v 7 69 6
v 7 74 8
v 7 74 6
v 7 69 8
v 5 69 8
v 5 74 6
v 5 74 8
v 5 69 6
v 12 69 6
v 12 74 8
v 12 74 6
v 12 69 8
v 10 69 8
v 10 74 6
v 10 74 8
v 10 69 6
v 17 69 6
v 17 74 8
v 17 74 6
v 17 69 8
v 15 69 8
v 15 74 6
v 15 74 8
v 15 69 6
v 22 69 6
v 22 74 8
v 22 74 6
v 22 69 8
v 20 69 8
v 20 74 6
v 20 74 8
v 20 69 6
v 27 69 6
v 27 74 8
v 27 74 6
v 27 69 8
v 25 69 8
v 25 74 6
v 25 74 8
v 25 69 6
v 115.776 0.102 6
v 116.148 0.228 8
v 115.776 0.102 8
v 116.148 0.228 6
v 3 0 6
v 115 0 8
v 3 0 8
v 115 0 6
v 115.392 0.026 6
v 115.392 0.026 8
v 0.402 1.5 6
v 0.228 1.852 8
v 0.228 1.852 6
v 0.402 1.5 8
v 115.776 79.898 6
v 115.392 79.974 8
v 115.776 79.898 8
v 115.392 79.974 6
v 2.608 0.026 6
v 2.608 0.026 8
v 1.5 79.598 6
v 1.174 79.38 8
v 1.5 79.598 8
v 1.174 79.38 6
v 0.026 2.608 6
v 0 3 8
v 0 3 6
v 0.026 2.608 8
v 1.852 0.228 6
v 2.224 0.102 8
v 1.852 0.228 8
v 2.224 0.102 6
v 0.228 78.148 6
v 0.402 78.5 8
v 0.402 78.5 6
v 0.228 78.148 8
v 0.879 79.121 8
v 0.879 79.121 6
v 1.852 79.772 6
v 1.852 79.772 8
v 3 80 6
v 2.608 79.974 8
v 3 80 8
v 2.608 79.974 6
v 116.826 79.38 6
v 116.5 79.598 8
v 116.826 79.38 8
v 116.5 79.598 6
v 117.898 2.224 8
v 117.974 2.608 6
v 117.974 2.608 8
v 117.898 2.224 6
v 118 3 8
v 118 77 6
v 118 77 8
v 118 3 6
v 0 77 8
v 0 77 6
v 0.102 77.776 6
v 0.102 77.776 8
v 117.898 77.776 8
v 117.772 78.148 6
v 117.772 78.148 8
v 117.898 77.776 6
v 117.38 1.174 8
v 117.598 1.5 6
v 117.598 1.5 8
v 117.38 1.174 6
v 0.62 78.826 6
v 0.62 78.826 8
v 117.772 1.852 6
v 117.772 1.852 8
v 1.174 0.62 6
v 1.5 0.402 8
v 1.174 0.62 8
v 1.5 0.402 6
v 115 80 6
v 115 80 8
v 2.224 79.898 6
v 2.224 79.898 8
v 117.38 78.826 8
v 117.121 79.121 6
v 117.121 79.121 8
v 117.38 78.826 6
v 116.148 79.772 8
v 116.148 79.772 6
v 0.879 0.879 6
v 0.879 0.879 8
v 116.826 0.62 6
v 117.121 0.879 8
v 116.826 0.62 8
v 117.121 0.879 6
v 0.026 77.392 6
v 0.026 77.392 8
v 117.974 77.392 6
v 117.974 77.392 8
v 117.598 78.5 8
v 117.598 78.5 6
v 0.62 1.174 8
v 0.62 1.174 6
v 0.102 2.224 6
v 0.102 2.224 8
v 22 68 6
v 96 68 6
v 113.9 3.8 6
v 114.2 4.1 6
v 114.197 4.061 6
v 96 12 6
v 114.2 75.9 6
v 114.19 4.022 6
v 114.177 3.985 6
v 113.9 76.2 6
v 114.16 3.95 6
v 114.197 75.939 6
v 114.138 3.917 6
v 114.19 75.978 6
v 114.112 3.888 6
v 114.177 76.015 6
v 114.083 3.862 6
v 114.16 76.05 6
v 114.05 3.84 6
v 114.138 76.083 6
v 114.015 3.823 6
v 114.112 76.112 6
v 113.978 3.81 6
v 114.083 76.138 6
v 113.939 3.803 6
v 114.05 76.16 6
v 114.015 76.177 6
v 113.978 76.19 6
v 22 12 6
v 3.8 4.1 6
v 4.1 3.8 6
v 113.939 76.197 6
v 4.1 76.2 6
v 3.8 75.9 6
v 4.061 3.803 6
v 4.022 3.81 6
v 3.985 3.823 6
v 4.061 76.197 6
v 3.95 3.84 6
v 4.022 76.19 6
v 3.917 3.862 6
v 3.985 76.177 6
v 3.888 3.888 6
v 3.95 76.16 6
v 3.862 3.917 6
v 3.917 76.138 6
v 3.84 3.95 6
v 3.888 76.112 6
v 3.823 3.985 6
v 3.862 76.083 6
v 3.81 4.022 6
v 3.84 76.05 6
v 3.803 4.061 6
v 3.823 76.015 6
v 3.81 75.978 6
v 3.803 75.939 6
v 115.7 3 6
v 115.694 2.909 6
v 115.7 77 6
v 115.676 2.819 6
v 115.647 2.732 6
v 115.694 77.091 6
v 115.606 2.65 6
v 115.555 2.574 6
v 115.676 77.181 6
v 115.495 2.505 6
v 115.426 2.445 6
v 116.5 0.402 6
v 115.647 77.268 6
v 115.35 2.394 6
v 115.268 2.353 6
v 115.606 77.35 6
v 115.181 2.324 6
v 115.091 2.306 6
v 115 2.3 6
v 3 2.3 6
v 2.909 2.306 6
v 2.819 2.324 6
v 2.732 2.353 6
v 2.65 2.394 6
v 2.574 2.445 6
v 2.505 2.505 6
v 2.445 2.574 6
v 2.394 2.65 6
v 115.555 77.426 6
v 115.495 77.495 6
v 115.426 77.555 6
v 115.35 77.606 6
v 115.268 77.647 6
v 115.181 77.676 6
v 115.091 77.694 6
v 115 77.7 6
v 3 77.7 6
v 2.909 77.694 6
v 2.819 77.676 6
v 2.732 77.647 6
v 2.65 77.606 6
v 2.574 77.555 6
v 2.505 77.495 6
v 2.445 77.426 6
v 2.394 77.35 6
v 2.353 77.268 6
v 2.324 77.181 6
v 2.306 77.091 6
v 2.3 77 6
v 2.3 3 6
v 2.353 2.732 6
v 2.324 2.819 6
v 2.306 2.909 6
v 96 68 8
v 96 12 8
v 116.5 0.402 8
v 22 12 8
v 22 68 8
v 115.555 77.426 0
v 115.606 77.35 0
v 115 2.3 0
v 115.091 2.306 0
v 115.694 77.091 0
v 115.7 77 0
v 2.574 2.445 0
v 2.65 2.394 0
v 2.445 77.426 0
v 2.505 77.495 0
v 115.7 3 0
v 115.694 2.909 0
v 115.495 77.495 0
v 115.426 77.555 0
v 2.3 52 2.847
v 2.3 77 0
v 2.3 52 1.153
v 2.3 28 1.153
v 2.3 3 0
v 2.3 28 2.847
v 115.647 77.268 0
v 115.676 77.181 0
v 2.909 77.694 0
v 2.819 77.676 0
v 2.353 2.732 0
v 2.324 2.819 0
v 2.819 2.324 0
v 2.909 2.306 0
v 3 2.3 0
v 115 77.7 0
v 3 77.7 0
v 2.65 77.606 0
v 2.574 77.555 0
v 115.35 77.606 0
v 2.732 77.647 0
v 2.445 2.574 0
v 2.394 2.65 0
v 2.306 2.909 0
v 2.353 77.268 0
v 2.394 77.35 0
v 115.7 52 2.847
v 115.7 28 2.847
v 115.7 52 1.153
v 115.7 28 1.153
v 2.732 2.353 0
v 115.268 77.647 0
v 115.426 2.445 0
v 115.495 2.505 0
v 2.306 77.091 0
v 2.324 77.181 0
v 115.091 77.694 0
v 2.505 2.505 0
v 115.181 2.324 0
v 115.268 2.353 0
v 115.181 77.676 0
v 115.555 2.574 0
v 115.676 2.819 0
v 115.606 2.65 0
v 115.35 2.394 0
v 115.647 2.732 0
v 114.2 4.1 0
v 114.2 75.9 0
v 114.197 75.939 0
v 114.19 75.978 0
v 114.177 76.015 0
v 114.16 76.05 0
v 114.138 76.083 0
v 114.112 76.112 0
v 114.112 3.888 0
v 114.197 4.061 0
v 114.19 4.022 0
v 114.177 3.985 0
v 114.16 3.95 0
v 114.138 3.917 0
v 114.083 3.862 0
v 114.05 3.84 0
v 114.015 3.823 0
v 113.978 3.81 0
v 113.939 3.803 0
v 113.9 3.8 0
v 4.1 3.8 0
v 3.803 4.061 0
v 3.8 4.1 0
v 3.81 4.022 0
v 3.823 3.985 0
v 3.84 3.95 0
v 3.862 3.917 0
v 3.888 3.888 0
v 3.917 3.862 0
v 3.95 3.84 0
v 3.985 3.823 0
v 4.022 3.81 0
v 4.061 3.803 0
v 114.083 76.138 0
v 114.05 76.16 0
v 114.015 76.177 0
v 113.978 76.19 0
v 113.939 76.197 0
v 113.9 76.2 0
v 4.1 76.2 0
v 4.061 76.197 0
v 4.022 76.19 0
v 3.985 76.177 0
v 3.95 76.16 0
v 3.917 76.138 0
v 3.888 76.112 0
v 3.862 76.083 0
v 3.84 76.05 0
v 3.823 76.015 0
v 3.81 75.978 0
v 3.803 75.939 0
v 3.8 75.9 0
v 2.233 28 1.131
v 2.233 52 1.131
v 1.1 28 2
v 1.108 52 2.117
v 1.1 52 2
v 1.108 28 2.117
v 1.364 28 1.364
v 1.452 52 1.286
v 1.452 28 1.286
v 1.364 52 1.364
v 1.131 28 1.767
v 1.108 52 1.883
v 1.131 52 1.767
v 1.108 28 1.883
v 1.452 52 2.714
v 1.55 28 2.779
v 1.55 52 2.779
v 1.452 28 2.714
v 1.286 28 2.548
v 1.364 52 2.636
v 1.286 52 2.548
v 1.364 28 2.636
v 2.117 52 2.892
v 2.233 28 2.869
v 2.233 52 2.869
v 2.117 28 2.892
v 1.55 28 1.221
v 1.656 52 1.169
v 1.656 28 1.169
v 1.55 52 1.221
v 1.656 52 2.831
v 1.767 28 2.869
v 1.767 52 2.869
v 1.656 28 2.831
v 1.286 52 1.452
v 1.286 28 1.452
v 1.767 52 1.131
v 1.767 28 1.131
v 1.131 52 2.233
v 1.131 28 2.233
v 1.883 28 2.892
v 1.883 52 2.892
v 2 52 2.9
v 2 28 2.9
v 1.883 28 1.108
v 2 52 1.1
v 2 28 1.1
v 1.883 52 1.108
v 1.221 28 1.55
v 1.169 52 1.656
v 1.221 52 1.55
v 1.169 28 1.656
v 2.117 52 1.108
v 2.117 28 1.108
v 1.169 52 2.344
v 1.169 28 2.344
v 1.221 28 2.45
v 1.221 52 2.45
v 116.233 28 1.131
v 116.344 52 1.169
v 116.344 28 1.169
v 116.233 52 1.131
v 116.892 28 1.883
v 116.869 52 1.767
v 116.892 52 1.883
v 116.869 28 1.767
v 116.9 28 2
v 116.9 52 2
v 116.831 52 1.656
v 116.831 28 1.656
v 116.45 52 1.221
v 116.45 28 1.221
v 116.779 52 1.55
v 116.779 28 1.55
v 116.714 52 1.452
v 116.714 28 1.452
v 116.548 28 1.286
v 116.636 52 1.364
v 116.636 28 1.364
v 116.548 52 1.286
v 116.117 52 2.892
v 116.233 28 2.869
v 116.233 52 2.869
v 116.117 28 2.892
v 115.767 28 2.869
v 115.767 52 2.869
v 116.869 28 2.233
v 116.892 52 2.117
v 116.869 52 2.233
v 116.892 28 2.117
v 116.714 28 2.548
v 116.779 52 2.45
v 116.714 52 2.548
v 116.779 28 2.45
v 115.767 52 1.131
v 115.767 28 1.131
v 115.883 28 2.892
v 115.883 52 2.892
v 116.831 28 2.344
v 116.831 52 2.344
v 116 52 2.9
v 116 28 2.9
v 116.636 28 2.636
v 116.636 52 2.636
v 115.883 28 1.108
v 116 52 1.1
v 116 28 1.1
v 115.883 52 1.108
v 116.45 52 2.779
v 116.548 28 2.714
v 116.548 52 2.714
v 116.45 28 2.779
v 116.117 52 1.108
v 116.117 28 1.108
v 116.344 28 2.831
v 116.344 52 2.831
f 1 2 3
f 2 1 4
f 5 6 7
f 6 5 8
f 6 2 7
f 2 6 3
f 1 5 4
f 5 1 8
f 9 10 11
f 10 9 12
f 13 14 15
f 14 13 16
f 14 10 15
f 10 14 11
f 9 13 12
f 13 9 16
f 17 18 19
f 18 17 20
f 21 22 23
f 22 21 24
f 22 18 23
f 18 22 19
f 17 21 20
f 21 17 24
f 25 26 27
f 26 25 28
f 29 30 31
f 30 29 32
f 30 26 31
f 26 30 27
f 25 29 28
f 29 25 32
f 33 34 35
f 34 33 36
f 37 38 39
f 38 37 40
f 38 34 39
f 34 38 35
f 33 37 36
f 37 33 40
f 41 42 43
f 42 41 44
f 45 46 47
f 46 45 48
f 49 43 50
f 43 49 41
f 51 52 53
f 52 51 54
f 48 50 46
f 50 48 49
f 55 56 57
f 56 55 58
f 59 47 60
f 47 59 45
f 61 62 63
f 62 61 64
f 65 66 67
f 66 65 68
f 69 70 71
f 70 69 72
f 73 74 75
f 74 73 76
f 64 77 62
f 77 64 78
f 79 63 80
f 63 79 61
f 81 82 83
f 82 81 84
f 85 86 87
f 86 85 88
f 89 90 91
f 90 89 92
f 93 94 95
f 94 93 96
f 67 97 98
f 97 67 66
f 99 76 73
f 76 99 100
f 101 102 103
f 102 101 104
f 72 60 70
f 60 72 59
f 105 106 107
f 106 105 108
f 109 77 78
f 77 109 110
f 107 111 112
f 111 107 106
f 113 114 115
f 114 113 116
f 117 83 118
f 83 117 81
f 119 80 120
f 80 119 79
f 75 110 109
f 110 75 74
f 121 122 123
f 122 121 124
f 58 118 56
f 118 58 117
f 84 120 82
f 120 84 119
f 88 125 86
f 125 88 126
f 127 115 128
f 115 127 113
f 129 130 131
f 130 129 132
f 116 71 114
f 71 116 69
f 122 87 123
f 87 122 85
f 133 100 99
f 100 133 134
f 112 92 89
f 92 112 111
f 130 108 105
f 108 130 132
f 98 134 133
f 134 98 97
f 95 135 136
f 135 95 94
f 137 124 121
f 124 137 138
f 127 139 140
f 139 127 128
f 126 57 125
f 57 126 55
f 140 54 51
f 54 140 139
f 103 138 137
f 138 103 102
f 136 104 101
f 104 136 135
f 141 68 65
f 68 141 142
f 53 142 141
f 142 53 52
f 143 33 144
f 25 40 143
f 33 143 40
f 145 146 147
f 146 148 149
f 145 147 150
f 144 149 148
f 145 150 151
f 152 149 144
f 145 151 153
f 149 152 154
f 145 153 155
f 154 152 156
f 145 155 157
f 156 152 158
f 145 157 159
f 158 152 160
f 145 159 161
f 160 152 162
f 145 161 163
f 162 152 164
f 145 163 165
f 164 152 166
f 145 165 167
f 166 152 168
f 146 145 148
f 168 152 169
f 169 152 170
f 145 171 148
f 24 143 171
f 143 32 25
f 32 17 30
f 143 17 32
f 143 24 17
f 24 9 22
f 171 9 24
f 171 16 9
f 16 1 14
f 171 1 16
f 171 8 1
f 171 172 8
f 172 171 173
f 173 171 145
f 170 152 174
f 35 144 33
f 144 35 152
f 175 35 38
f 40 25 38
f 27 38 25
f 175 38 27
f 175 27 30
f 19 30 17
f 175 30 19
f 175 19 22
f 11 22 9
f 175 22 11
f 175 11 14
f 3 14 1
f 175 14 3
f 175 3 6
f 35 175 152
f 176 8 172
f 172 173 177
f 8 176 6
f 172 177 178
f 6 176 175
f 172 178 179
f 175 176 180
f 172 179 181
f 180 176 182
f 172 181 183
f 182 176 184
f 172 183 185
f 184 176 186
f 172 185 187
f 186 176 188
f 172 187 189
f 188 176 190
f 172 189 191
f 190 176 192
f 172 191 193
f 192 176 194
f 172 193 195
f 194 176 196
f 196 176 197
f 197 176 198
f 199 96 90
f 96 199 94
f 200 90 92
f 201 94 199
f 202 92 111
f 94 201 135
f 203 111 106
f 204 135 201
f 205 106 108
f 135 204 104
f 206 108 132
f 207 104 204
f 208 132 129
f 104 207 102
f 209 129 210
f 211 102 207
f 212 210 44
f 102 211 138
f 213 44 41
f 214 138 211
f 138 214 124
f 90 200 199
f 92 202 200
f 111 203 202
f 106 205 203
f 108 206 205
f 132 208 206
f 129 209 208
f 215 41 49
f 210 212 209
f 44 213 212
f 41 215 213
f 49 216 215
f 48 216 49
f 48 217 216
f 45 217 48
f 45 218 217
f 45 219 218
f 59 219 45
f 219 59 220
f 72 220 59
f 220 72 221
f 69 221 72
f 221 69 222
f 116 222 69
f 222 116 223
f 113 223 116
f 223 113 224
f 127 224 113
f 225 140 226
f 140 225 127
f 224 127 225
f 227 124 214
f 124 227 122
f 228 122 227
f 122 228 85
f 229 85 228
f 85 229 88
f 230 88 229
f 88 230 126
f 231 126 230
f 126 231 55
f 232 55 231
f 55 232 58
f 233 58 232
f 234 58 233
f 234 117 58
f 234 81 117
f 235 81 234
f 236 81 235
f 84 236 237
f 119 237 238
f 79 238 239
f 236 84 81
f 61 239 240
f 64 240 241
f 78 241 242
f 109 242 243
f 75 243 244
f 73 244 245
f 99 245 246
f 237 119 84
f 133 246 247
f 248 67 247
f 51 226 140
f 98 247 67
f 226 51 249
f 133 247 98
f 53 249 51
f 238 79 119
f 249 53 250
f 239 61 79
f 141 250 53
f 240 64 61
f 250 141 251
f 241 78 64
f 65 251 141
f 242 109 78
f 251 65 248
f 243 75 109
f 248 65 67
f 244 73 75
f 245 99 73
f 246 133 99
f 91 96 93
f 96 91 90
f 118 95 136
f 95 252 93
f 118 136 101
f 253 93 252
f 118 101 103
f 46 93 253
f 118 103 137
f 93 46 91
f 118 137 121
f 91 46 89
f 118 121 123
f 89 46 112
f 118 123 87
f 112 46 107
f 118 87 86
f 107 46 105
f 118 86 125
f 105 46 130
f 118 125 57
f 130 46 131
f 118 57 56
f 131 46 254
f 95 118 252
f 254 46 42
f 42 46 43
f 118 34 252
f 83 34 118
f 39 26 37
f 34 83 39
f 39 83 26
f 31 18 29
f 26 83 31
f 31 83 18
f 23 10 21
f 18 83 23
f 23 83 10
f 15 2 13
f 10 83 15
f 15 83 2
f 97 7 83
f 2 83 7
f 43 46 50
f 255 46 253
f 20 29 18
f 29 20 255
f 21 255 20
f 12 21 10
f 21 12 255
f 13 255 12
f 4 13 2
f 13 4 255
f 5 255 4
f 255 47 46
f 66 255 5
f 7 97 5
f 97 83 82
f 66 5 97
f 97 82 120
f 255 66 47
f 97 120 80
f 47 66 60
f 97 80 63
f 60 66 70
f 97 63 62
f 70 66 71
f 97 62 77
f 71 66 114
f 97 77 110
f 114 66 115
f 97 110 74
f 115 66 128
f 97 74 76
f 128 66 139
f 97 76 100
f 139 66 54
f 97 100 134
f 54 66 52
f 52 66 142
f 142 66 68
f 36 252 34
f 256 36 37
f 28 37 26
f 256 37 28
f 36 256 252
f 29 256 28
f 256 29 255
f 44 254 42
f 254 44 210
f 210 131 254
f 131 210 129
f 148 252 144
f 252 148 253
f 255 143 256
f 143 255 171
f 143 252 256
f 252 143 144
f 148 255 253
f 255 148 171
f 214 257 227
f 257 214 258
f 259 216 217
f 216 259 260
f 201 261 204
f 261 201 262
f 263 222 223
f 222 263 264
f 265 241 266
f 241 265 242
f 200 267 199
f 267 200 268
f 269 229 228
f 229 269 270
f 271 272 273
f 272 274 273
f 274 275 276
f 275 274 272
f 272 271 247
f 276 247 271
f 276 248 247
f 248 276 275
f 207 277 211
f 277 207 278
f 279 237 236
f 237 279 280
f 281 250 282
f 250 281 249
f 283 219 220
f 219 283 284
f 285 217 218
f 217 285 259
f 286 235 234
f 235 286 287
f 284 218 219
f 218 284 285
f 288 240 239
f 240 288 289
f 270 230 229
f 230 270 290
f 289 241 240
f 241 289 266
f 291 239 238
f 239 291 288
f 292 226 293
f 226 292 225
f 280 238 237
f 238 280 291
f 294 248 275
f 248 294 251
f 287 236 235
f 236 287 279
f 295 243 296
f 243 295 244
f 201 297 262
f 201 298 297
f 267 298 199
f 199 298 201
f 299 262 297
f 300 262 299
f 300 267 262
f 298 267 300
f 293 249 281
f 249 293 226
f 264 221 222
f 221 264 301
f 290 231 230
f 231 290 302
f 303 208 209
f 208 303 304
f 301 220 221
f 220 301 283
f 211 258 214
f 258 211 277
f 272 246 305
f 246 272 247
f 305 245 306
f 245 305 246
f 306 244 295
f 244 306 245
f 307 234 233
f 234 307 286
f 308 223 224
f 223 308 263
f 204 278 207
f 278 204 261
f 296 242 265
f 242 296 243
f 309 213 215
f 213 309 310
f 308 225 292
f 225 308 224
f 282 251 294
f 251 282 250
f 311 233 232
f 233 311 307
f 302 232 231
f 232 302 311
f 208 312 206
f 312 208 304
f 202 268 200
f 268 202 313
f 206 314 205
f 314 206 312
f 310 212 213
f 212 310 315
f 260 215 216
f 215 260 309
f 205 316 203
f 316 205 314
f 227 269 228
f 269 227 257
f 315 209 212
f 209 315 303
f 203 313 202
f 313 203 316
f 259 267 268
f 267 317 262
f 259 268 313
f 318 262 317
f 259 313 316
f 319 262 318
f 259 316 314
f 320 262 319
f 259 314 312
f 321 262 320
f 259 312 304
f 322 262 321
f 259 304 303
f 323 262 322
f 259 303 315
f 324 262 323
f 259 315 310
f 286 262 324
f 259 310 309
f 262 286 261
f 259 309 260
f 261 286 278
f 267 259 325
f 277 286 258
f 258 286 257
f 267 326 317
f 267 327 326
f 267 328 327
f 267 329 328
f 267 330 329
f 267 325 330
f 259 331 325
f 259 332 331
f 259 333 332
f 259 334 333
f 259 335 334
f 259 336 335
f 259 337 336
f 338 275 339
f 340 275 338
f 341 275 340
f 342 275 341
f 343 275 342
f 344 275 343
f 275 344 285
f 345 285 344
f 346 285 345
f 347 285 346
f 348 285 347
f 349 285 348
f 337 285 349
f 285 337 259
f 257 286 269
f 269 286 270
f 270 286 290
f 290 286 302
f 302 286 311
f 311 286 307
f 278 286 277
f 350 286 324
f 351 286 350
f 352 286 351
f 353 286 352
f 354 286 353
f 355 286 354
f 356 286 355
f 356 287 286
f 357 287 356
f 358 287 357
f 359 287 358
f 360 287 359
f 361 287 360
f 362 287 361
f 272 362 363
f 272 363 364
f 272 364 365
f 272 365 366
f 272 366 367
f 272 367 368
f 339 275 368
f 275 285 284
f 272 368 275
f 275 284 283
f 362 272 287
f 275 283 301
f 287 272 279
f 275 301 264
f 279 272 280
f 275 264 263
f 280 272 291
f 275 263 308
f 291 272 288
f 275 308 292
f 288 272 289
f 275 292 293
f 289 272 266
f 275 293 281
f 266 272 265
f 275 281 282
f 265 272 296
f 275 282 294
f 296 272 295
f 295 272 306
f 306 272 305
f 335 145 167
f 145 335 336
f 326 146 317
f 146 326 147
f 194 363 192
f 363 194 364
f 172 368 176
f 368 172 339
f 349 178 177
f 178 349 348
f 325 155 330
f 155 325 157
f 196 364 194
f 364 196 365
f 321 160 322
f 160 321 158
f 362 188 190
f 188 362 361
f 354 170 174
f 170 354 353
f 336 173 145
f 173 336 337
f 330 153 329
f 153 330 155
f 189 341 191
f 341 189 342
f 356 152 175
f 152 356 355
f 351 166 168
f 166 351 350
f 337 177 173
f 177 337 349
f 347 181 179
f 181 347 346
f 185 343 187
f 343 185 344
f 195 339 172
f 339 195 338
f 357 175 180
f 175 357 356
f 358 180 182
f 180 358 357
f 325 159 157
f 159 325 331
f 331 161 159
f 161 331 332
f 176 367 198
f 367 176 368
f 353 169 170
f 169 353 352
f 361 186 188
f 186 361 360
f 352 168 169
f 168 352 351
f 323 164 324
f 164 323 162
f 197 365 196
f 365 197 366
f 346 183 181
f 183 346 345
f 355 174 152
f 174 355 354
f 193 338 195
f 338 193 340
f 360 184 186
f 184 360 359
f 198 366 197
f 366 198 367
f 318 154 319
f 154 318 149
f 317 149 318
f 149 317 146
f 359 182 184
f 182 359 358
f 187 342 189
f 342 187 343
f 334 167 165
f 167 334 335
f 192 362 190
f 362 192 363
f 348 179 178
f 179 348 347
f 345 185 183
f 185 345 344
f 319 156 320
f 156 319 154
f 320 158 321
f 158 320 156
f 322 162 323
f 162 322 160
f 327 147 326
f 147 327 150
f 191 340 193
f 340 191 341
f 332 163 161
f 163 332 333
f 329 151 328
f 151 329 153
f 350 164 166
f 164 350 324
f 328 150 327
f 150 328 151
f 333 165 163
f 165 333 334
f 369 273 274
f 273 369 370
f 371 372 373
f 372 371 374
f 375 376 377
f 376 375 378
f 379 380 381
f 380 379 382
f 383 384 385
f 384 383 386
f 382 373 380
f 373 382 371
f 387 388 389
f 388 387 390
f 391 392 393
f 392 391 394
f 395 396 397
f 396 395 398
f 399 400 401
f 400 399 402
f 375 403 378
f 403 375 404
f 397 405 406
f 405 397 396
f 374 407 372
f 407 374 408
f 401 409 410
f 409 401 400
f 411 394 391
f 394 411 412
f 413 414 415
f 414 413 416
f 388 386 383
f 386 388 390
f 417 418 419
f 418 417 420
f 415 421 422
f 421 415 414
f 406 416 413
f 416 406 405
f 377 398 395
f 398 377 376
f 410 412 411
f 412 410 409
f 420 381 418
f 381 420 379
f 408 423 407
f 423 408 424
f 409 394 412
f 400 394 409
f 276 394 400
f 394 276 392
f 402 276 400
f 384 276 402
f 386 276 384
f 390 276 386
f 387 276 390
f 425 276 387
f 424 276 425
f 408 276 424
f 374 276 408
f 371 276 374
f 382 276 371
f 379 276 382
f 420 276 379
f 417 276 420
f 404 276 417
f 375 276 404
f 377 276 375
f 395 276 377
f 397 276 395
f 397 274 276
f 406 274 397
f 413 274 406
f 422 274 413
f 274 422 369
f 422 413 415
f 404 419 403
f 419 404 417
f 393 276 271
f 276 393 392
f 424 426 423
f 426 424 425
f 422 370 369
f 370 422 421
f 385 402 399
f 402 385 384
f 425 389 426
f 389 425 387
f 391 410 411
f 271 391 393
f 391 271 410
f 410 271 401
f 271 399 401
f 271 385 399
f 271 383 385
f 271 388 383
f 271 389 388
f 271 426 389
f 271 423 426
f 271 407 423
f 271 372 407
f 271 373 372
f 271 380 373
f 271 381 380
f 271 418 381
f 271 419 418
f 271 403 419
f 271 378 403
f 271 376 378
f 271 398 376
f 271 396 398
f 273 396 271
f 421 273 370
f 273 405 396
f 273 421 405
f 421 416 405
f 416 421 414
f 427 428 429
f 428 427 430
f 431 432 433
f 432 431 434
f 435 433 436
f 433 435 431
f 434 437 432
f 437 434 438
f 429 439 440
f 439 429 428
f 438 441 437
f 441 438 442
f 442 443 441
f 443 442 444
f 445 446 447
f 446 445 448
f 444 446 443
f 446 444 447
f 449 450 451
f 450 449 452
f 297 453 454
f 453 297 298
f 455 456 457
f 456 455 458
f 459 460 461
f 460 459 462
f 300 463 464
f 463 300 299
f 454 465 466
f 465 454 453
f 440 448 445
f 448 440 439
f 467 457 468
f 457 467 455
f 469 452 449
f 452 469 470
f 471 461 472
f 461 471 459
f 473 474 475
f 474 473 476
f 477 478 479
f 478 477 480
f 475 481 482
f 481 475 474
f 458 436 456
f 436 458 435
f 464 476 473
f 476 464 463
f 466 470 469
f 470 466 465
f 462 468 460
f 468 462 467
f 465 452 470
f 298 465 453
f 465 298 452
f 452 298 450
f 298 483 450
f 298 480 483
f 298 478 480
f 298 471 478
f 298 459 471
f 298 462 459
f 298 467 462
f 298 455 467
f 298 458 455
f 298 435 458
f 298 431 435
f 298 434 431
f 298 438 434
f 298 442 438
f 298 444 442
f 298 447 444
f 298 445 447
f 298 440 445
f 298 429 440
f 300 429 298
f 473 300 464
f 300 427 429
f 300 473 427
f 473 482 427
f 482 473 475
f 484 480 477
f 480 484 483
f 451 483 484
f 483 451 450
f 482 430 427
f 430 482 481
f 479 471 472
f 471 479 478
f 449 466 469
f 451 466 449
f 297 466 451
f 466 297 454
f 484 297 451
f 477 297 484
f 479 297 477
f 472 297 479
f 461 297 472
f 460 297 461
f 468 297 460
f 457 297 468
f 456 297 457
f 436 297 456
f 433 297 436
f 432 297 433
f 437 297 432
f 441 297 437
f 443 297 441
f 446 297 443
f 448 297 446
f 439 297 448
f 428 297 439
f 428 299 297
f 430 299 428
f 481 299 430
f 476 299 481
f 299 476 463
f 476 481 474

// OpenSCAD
// file: common.scad
// common.scad — shared parameters, constants, and helper modules
// Included by case_base.scad, case_top.scad and assembly.scad.
// All dimensions in mm. Change a value here and re-export both STLs.

/* ========== Board ========== */
board_w  = 94;    // width   (X)
board_l  = 56;    // height  (Y)
board_th = 5.5;   // full stack thickness (display + PCB + back components)

/* ========== Case construction ========== */
wall      = 2.0;   // side wall thickness
floor_t   = 2.0;   // base floor thickness
lid_t       = 2.0;   // lid top-plate thickness
pad         = 10;    // cable clearance between board edge and walls (all sides)
corner_r    = 3.0;   // outer corner radius
lid_gap     = 0.5;   // gap between display surface and lid underside
under_board = 25;    // clear space below the board for sensors (mm)

/* ========== Board mounting ========== */
standoff_d    = 6.0;   // standoff post diameter
hole_inset    = 3.0;   // screw-hole centre inset from the board corner
screw_pilot_d = 2.2;   // pilot hole (M2.5 self-tapping)

/* ========== USB-C power (left wall, centred) ========== */
usb_w = 16;   // opening width along the wall — generous for alignment slop
usb_h = 6;    // opening height

/* ========== Display window (in the lid) ========== */
disp_w     = 74;   // viewable width  (X) — board width minus 2 x 10 mm margin
disp_l     = 56;   // viewable height (Y) — full board height
disp_frame = 0;    // lid overlap onto the display edge (0 = window = active area)

/* ========== Ventilation ========== */
// Wall louvers (fresh-air intake, low on the walls)
louver_w     = 2.5;
louver_h     = 2.5;
louver_gap   = 3.0;
louver_count = 6;
louver_rows  = 2;
louver_vgap  = 3.0;   // vertical gap between louver rows
// Lid exhaust slots (top strip, left of the connector)
vent_slot_w   = 2.0;
vent_slot_len = 5.0;
vent_gap      = 3.0;
vent_rows     = 5;

/* ========== Snap-fit lid ========== */
skirt_h    = 6.0;   // how deep the lid skirt reaches into the base
skirt_wall = 1.5;   // skirt wall thickness (thin enough to flex)
skirt_gap  = 0.3;   // print clearance: skirt outer face to cavity wall
snap_r     = 0.9;   // snap-bead radius (protrudes snap_r - skirt_gap past wall)
snap_len   = 24;    // bead length along the wall

/* ========== Derived ========== */
$fn = 48;

post_h  = under_board;
inner_h = post_h + board_th + lid_gap;

inner_w = board_w + 2 * pad;
inner_l = board_l + 2 * pad;

outer_w = inner_w + 2 * wall;
outer_l = inner_l + 2 * wall;
base_h  = floor_t + inner_h;                  // wall top = where the lid seats

inner_r = max(corner_r - wall, 0.5);
skirt_r = max(inner_r - skirt_gap, 0.5);

// Board origin in case coords; connector gap sits at the high-Y (top) edge.
board_x0 = wall + pad;
board_y0 = wall + pad;
board_cx = board_x0 + board_w / 2;            // = outer_w / 2
board_cy = board_y0 + board_l / 2;

// USB-C opening, centred on the left (-X) wall.
usb_zc = floor_t + post_h - 3;                // centre 3 mm below the standoff tops (board underside)

groove_r = snap_r + 0.25;                      // groove clearance over the bead
snap_z   = base_h - skirt_h + 2;               // bead/groove centre height
snap_x   = [wall, outer_w - wall];             // side walls; bead axis = cavity face

louver_z = floor_t + 1.5;                      // intake band, in the sensor space

echo("Outer footprint (mm):", outer_w, "x", outer_l);
echo("Total closed height (mm):", base_h + lid_t);
echo("Sensor space under board (mm):", post_h);

/* ========== Helpers ========== */

module rounded_rect(w, l, r) {
    offset(r = r)
        translate([r, r])
            square([w - 2 * r, l - 2 * r]);
}

module rounded_prism(w, l, h, r) {
    linear_extrude(height = h)
        rounded_rect(w, l, r);
}

// Cylinder lying along +Y, centred over the case length.
module snap_bead(x, r) {
    translate([x, outer_l / 2 - snap_len / 2, snap_z])
        rotate([-90, 0, 0])
            cylinder(r = r, h = snap_len);
}

// One row of through-slots low on a wall (fresh-air intake).
module wall_louvers(side) {
    span  = (side == "front") ? outer_w : outer_l;
    total = louver_count * louver_w + (louver_count - 1) * louver_gap;
    for (r = [0 : louver_rows - 1]) {
        z = louver_z + r * (louver_h + louver_vgap);
        for (i = [0 : louver_count - 1]) {
            off = span / 2 - total / 2 + i * (louver_w + louver_gap);
            if (side == "front")        // -Y wall, slots along X
                translate([off, -0.01, z])
                    cube([louver_w, wall + 0.02, louver_h]);
            else if (side == "left")    // -X wall, slots along Y
                translate([-0.01, off, z])
                    cube([wall + 0.02, louver_w, louver_h]);
            else if (side == "right")   // +X wall, slots along Y
                translate([outer_w - wall - 0.01, off, z])
                    cube([wall + 0.02, louver_w, louver_h]);
        }
    }
}
// main file
// case_top.scad — ESP32 air-quality monitor enclosure: LID (top)
//
// Drops in with a skirt; a rounded snap-bead on each side wall
// clicks into a matching groove in the base → press to close, pry to open.
// Display window centred over the board; exhaust slots in the top strip.
//
// Export:  openscad -o stl/case_top.stl case_top.scad
// (exported skirt-down, i.e. in the assembled orientation moved to z = 0;
//  flip it in the slicer and print it flat top on the bed)

include <common.scad>

module lid() {
    translate([0, 0, base_h]) {
        difference() {
            rounded_prism(outer_w, outer_l, lid_t, corner_r);

            // display window, centred over the board
            translate([board_cx - disp_w / 2 + disp_frame,
                       board_cy - disp_l / 2 + disp_frame,
                       -0.01])
                cube([disp_w - 2 * disp_frame, disp_l - 2 * disp_frame, lid_t + 0.02]);

            // exhaust slots in the top strip, left of the connector
            for (i = [0 : vent_rows - 1])
                translate([wall + 3 + i * (vent_slot_w + vent_gap),
                           board_cy + disp_l / 2 + 1,
                           -0.01])
                    cube([vent_slot_w, vent_slot_len, lid_t + 0.02]);
        }
    }

    // skirt ring hanging below the top plate
    translate([wall + skirt_gap, wall + skirt_gap, base_h - skirt_h])
        difference() {
            rounded_prism(inner_w - 2 * skirt_gap, inner_l - 2 * skirt_gap, skirt_h, skirt_r);
            translate([skirt_wall, skirt_wall, -0.01])
                rounded_prism(inner_w - 2 * skirt_gap - 2 * skirt_wall,
                              inner_l - 2 * skirt_gap - 2 * skirt_wall,
                              skirt_h + 0.02,
                              max(skirt_r - skirt_wall, 0.3));
        }

    // snap beads on the skirt
    for (x = snap_x) snap_bead(x, snap_r);
}

// Shift the lid down to the floor so it is not floating in the air.
// The bottom of the skirt (originally at z = base_h - skirt_h) lands at z = 0.
translate([0, 0, -(base_h - skirt_h)])
    lid();
